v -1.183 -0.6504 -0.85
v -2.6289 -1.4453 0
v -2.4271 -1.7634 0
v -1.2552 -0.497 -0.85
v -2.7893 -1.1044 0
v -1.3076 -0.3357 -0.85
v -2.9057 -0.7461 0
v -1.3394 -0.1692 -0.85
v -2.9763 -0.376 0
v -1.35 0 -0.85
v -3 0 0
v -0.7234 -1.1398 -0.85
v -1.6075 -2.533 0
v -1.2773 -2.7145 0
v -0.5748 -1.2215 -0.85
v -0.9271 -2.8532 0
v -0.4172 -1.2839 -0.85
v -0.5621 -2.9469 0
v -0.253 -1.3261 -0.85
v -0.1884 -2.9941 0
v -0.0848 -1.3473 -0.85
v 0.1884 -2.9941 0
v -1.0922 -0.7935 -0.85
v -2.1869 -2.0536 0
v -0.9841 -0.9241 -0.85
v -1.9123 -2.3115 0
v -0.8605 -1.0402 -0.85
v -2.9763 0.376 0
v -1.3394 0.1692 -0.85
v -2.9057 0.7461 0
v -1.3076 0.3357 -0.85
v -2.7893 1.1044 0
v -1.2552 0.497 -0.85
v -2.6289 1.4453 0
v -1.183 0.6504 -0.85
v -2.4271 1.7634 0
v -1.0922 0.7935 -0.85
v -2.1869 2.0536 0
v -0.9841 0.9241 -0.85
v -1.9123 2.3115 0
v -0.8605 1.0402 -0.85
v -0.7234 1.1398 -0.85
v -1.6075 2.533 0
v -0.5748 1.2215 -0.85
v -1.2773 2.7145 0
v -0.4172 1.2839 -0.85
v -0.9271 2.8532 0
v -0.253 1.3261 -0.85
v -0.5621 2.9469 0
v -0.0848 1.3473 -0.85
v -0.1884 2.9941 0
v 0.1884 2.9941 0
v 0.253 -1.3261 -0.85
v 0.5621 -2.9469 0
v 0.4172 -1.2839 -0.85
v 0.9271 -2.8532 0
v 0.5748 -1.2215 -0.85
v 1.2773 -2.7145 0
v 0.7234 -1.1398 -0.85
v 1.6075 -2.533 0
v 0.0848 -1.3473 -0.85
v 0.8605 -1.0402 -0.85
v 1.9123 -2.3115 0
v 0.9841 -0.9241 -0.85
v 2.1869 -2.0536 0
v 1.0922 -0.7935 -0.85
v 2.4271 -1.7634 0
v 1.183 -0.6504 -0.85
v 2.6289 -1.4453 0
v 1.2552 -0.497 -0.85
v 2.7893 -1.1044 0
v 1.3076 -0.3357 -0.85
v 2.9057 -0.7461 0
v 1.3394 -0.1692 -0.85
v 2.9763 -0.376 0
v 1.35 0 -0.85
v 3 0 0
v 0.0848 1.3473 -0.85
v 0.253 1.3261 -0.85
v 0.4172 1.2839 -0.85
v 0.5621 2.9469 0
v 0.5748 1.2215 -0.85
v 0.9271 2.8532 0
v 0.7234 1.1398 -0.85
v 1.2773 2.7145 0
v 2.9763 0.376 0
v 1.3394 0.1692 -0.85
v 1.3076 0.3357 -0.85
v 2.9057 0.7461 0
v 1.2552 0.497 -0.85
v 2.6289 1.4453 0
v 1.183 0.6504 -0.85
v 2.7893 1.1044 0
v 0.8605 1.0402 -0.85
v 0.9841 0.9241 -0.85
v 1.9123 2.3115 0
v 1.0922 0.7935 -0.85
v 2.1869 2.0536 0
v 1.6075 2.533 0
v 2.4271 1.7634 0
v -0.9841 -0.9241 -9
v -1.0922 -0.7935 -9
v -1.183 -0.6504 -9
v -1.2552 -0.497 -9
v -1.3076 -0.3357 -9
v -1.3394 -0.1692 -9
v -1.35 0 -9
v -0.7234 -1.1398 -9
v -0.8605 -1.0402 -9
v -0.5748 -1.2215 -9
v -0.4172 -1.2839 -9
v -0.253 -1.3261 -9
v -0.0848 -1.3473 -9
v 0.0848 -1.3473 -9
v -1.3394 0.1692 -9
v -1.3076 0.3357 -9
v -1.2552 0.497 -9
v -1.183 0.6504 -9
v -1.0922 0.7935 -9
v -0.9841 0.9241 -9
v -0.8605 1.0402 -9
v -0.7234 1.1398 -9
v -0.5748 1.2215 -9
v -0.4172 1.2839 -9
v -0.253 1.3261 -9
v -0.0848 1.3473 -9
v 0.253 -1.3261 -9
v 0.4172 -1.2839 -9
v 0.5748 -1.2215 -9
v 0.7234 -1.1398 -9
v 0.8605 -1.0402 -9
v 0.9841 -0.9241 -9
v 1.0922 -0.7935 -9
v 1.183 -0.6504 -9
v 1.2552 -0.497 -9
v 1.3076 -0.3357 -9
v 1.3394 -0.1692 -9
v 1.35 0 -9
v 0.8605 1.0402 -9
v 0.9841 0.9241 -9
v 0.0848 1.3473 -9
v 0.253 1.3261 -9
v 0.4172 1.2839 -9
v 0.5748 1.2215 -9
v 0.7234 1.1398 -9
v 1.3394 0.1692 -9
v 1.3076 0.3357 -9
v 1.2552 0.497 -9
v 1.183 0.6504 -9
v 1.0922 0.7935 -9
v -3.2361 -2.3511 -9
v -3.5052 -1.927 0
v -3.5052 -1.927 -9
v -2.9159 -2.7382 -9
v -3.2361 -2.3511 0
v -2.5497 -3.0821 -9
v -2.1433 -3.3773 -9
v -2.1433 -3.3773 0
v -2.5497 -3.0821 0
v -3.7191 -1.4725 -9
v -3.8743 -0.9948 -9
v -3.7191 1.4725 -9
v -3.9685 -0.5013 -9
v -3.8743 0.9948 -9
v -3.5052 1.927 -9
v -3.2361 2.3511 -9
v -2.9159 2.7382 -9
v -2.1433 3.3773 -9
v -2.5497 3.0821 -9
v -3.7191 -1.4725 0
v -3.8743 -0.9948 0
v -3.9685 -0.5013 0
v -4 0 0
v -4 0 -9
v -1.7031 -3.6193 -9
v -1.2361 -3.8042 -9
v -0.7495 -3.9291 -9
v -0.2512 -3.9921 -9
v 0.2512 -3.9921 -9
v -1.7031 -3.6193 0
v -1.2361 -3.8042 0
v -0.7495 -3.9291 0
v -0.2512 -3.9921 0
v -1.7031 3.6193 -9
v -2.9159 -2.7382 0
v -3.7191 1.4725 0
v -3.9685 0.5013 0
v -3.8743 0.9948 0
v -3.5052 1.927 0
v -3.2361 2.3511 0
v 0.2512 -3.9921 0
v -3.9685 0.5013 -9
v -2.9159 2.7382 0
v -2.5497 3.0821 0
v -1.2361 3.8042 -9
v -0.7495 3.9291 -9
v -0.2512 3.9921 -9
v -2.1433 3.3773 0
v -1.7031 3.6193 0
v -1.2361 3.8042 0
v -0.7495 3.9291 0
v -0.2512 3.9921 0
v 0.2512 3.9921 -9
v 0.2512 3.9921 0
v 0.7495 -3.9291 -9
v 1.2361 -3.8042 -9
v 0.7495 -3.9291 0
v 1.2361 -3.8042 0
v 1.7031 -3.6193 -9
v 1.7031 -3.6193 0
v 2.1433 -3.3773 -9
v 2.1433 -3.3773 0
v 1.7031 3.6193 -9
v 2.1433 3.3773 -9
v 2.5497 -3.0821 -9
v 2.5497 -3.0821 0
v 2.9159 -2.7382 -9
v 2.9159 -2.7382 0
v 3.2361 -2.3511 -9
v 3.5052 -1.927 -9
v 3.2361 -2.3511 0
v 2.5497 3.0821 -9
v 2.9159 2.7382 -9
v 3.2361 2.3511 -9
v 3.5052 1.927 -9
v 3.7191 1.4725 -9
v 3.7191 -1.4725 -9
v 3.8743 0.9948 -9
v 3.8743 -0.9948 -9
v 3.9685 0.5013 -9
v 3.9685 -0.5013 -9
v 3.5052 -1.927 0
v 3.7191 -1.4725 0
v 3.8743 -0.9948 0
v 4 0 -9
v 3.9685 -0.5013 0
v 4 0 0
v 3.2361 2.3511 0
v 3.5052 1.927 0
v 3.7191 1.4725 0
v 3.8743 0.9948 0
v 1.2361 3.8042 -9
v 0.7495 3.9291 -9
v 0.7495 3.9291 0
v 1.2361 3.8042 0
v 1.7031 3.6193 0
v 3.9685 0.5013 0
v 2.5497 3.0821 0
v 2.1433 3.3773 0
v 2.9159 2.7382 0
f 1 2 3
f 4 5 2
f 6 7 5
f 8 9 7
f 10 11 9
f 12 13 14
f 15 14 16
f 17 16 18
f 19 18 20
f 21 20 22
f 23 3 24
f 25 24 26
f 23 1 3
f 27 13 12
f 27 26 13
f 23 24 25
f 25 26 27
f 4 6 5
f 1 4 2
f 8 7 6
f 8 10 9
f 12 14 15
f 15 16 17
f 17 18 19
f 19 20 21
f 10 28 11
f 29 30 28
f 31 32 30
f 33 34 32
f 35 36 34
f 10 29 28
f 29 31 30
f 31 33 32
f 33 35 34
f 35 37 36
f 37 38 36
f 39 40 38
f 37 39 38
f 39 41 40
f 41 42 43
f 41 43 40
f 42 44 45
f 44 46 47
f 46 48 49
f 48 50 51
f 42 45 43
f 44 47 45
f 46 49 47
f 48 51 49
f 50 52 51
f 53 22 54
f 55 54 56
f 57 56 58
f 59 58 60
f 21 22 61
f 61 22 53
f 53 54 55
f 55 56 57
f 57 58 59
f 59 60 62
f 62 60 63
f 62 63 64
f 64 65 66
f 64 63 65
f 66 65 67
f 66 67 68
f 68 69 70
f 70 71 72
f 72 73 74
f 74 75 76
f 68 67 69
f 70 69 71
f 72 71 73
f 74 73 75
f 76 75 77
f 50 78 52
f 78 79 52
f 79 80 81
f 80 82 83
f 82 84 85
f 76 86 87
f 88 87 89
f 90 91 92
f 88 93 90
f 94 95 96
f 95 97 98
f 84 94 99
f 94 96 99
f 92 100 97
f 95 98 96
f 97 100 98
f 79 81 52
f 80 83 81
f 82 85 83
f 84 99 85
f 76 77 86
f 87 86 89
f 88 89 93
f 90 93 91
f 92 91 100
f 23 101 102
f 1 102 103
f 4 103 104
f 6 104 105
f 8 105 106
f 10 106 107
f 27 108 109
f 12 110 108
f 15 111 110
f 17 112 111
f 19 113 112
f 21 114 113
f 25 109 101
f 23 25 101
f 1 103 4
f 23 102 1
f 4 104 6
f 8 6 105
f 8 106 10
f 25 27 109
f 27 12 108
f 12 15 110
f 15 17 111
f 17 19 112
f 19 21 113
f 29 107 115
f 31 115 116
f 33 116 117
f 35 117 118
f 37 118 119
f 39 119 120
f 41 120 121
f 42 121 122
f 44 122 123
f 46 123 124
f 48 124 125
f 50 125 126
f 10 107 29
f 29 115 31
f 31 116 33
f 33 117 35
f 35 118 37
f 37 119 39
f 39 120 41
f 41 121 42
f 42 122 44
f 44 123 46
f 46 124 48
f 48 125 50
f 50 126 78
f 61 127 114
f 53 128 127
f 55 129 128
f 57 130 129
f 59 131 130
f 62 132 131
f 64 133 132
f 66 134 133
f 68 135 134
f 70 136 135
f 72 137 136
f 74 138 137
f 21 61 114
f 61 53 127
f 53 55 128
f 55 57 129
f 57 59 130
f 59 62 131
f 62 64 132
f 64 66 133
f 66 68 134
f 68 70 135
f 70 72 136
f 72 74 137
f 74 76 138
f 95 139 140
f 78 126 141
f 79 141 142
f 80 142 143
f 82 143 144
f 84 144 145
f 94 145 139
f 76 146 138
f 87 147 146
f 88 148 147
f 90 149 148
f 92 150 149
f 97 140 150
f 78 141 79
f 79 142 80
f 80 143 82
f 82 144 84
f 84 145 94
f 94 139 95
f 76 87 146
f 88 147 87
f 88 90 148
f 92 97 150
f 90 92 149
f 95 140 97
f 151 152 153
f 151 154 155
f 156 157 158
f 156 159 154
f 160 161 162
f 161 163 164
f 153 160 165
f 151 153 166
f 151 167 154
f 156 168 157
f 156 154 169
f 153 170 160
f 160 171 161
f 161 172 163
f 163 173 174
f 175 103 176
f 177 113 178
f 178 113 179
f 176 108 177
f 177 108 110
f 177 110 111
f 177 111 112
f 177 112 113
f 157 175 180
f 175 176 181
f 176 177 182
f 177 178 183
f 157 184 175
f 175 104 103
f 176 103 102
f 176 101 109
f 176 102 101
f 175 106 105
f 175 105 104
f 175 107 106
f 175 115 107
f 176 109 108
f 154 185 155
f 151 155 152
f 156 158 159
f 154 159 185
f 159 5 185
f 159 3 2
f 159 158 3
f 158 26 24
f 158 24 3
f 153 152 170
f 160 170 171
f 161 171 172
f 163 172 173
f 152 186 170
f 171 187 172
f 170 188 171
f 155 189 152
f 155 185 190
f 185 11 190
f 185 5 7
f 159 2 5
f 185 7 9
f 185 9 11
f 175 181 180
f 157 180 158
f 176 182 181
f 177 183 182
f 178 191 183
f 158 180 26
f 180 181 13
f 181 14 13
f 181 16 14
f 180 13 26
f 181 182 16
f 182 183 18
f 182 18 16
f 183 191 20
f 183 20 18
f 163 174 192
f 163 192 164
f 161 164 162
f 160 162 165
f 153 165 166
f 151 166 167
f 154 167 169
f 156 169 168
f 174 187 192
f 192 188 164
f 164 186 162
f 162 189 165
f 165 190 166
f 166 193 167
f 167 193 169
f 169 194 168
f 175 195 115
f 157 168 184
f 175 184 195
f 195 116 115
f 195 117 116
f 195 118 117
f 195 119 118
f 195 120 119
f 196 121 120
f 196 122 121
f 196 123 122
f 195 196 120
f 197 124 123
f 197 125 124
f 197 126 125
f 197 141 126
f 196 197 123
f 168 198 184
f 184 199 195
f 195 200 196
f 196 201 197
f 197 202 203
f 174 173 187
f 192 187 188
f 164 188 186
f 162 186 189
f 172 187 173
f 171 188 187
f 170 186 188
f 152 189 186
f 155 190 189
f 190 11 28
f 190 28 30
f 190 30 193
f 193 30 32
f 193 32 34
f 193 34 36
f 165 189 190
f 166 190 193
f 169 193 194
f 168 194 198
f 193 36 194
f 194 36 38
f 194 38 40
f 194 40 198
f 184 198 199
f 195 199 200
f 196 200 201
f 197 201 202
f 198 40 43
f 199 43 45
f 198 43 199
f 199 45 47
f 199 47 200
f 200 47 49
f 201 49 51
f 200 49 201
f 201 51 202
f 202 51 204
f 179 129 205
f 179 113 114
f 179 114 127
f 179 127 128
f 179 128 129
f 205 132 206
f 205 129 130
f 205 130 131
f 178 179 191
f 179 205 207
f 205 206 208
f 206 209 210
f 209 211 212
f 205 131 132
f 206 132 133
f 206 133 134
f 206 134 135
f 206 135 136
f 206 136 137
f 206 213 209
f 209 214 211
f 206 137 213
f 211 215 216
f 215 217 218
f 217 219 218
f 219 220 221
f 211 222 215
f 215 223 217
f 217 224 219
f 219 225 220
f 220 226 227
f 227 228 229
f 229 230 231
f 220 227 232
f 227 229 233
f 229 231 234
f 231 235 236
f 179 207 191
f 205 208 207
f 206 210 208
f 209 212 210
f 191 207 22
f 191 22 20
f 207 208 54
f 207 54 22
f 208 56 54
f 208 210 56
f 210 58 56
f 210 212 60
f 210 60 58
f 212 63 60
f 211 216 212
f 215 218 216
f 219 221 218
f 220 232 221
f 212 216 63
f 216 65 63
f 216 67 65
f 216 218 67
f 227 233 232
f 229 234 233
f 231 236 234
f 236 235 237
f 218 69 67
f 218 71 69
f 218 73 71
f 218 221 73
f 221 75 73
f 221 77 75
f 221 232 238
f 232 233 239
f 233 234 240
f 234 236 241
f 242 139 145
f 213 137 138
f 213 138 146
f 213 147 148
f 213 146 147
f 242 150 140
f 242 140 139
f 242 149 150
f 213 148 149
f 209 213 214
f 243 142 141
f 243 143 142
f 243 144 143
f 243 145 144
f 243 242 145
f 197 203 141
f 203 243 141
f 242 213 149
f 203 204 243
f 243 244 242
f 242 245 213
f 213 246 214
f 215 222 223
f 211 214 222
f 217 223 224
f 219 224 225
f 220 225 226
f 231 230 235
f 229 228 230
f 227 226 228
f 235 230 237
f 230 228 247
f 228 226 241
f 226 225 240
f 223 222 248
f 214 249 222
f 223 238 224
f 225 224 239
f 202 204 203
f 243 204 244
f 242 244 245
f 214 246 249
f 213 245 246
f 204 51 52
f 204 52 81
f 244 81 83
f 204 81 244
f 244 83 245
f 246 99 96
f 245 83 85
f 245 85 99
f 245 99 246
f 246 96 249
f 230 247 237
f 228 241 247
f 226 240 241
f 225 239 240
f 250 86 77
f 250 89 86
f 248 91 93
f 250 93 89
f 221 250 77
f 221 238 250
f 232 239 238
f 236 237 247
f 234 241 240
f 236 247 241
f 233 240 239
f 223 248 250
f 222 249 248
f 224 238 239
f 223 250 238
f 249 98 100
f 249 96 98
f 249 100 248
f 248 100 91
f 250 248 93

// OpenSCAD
$fn = 50;

difference() {
	union() {
		translate(v = [0, 0, -9.0]) {
			cylinder(h = 12, r = 4.0);
		}
	}
	union() {
		translate(v = [0, 0, 0]) {
			rotate(a = [0, 0, 0]) {
				difference() {
					union() {
						translate(v = [0, 0, -12.0]) {
							cylinder(h = 12, r = 1.0);
						}
						translate(v = [0, 0, -0.85]) {
							cylinder(h = 0.85, r1 = 1.35, r2 = 3.0);
						}
						translate(v = [0, 0, -12.0]) {
							cylinder(h = 12, r = 1.35);
						}
						translate(v = [0, 0, -12.0]) {
							cylinder(h = 12, r = 1.0);
						}
					}
					union();
				}
			}
		}
		#cylinder(h = 3, r = 5.0);
	}
}
